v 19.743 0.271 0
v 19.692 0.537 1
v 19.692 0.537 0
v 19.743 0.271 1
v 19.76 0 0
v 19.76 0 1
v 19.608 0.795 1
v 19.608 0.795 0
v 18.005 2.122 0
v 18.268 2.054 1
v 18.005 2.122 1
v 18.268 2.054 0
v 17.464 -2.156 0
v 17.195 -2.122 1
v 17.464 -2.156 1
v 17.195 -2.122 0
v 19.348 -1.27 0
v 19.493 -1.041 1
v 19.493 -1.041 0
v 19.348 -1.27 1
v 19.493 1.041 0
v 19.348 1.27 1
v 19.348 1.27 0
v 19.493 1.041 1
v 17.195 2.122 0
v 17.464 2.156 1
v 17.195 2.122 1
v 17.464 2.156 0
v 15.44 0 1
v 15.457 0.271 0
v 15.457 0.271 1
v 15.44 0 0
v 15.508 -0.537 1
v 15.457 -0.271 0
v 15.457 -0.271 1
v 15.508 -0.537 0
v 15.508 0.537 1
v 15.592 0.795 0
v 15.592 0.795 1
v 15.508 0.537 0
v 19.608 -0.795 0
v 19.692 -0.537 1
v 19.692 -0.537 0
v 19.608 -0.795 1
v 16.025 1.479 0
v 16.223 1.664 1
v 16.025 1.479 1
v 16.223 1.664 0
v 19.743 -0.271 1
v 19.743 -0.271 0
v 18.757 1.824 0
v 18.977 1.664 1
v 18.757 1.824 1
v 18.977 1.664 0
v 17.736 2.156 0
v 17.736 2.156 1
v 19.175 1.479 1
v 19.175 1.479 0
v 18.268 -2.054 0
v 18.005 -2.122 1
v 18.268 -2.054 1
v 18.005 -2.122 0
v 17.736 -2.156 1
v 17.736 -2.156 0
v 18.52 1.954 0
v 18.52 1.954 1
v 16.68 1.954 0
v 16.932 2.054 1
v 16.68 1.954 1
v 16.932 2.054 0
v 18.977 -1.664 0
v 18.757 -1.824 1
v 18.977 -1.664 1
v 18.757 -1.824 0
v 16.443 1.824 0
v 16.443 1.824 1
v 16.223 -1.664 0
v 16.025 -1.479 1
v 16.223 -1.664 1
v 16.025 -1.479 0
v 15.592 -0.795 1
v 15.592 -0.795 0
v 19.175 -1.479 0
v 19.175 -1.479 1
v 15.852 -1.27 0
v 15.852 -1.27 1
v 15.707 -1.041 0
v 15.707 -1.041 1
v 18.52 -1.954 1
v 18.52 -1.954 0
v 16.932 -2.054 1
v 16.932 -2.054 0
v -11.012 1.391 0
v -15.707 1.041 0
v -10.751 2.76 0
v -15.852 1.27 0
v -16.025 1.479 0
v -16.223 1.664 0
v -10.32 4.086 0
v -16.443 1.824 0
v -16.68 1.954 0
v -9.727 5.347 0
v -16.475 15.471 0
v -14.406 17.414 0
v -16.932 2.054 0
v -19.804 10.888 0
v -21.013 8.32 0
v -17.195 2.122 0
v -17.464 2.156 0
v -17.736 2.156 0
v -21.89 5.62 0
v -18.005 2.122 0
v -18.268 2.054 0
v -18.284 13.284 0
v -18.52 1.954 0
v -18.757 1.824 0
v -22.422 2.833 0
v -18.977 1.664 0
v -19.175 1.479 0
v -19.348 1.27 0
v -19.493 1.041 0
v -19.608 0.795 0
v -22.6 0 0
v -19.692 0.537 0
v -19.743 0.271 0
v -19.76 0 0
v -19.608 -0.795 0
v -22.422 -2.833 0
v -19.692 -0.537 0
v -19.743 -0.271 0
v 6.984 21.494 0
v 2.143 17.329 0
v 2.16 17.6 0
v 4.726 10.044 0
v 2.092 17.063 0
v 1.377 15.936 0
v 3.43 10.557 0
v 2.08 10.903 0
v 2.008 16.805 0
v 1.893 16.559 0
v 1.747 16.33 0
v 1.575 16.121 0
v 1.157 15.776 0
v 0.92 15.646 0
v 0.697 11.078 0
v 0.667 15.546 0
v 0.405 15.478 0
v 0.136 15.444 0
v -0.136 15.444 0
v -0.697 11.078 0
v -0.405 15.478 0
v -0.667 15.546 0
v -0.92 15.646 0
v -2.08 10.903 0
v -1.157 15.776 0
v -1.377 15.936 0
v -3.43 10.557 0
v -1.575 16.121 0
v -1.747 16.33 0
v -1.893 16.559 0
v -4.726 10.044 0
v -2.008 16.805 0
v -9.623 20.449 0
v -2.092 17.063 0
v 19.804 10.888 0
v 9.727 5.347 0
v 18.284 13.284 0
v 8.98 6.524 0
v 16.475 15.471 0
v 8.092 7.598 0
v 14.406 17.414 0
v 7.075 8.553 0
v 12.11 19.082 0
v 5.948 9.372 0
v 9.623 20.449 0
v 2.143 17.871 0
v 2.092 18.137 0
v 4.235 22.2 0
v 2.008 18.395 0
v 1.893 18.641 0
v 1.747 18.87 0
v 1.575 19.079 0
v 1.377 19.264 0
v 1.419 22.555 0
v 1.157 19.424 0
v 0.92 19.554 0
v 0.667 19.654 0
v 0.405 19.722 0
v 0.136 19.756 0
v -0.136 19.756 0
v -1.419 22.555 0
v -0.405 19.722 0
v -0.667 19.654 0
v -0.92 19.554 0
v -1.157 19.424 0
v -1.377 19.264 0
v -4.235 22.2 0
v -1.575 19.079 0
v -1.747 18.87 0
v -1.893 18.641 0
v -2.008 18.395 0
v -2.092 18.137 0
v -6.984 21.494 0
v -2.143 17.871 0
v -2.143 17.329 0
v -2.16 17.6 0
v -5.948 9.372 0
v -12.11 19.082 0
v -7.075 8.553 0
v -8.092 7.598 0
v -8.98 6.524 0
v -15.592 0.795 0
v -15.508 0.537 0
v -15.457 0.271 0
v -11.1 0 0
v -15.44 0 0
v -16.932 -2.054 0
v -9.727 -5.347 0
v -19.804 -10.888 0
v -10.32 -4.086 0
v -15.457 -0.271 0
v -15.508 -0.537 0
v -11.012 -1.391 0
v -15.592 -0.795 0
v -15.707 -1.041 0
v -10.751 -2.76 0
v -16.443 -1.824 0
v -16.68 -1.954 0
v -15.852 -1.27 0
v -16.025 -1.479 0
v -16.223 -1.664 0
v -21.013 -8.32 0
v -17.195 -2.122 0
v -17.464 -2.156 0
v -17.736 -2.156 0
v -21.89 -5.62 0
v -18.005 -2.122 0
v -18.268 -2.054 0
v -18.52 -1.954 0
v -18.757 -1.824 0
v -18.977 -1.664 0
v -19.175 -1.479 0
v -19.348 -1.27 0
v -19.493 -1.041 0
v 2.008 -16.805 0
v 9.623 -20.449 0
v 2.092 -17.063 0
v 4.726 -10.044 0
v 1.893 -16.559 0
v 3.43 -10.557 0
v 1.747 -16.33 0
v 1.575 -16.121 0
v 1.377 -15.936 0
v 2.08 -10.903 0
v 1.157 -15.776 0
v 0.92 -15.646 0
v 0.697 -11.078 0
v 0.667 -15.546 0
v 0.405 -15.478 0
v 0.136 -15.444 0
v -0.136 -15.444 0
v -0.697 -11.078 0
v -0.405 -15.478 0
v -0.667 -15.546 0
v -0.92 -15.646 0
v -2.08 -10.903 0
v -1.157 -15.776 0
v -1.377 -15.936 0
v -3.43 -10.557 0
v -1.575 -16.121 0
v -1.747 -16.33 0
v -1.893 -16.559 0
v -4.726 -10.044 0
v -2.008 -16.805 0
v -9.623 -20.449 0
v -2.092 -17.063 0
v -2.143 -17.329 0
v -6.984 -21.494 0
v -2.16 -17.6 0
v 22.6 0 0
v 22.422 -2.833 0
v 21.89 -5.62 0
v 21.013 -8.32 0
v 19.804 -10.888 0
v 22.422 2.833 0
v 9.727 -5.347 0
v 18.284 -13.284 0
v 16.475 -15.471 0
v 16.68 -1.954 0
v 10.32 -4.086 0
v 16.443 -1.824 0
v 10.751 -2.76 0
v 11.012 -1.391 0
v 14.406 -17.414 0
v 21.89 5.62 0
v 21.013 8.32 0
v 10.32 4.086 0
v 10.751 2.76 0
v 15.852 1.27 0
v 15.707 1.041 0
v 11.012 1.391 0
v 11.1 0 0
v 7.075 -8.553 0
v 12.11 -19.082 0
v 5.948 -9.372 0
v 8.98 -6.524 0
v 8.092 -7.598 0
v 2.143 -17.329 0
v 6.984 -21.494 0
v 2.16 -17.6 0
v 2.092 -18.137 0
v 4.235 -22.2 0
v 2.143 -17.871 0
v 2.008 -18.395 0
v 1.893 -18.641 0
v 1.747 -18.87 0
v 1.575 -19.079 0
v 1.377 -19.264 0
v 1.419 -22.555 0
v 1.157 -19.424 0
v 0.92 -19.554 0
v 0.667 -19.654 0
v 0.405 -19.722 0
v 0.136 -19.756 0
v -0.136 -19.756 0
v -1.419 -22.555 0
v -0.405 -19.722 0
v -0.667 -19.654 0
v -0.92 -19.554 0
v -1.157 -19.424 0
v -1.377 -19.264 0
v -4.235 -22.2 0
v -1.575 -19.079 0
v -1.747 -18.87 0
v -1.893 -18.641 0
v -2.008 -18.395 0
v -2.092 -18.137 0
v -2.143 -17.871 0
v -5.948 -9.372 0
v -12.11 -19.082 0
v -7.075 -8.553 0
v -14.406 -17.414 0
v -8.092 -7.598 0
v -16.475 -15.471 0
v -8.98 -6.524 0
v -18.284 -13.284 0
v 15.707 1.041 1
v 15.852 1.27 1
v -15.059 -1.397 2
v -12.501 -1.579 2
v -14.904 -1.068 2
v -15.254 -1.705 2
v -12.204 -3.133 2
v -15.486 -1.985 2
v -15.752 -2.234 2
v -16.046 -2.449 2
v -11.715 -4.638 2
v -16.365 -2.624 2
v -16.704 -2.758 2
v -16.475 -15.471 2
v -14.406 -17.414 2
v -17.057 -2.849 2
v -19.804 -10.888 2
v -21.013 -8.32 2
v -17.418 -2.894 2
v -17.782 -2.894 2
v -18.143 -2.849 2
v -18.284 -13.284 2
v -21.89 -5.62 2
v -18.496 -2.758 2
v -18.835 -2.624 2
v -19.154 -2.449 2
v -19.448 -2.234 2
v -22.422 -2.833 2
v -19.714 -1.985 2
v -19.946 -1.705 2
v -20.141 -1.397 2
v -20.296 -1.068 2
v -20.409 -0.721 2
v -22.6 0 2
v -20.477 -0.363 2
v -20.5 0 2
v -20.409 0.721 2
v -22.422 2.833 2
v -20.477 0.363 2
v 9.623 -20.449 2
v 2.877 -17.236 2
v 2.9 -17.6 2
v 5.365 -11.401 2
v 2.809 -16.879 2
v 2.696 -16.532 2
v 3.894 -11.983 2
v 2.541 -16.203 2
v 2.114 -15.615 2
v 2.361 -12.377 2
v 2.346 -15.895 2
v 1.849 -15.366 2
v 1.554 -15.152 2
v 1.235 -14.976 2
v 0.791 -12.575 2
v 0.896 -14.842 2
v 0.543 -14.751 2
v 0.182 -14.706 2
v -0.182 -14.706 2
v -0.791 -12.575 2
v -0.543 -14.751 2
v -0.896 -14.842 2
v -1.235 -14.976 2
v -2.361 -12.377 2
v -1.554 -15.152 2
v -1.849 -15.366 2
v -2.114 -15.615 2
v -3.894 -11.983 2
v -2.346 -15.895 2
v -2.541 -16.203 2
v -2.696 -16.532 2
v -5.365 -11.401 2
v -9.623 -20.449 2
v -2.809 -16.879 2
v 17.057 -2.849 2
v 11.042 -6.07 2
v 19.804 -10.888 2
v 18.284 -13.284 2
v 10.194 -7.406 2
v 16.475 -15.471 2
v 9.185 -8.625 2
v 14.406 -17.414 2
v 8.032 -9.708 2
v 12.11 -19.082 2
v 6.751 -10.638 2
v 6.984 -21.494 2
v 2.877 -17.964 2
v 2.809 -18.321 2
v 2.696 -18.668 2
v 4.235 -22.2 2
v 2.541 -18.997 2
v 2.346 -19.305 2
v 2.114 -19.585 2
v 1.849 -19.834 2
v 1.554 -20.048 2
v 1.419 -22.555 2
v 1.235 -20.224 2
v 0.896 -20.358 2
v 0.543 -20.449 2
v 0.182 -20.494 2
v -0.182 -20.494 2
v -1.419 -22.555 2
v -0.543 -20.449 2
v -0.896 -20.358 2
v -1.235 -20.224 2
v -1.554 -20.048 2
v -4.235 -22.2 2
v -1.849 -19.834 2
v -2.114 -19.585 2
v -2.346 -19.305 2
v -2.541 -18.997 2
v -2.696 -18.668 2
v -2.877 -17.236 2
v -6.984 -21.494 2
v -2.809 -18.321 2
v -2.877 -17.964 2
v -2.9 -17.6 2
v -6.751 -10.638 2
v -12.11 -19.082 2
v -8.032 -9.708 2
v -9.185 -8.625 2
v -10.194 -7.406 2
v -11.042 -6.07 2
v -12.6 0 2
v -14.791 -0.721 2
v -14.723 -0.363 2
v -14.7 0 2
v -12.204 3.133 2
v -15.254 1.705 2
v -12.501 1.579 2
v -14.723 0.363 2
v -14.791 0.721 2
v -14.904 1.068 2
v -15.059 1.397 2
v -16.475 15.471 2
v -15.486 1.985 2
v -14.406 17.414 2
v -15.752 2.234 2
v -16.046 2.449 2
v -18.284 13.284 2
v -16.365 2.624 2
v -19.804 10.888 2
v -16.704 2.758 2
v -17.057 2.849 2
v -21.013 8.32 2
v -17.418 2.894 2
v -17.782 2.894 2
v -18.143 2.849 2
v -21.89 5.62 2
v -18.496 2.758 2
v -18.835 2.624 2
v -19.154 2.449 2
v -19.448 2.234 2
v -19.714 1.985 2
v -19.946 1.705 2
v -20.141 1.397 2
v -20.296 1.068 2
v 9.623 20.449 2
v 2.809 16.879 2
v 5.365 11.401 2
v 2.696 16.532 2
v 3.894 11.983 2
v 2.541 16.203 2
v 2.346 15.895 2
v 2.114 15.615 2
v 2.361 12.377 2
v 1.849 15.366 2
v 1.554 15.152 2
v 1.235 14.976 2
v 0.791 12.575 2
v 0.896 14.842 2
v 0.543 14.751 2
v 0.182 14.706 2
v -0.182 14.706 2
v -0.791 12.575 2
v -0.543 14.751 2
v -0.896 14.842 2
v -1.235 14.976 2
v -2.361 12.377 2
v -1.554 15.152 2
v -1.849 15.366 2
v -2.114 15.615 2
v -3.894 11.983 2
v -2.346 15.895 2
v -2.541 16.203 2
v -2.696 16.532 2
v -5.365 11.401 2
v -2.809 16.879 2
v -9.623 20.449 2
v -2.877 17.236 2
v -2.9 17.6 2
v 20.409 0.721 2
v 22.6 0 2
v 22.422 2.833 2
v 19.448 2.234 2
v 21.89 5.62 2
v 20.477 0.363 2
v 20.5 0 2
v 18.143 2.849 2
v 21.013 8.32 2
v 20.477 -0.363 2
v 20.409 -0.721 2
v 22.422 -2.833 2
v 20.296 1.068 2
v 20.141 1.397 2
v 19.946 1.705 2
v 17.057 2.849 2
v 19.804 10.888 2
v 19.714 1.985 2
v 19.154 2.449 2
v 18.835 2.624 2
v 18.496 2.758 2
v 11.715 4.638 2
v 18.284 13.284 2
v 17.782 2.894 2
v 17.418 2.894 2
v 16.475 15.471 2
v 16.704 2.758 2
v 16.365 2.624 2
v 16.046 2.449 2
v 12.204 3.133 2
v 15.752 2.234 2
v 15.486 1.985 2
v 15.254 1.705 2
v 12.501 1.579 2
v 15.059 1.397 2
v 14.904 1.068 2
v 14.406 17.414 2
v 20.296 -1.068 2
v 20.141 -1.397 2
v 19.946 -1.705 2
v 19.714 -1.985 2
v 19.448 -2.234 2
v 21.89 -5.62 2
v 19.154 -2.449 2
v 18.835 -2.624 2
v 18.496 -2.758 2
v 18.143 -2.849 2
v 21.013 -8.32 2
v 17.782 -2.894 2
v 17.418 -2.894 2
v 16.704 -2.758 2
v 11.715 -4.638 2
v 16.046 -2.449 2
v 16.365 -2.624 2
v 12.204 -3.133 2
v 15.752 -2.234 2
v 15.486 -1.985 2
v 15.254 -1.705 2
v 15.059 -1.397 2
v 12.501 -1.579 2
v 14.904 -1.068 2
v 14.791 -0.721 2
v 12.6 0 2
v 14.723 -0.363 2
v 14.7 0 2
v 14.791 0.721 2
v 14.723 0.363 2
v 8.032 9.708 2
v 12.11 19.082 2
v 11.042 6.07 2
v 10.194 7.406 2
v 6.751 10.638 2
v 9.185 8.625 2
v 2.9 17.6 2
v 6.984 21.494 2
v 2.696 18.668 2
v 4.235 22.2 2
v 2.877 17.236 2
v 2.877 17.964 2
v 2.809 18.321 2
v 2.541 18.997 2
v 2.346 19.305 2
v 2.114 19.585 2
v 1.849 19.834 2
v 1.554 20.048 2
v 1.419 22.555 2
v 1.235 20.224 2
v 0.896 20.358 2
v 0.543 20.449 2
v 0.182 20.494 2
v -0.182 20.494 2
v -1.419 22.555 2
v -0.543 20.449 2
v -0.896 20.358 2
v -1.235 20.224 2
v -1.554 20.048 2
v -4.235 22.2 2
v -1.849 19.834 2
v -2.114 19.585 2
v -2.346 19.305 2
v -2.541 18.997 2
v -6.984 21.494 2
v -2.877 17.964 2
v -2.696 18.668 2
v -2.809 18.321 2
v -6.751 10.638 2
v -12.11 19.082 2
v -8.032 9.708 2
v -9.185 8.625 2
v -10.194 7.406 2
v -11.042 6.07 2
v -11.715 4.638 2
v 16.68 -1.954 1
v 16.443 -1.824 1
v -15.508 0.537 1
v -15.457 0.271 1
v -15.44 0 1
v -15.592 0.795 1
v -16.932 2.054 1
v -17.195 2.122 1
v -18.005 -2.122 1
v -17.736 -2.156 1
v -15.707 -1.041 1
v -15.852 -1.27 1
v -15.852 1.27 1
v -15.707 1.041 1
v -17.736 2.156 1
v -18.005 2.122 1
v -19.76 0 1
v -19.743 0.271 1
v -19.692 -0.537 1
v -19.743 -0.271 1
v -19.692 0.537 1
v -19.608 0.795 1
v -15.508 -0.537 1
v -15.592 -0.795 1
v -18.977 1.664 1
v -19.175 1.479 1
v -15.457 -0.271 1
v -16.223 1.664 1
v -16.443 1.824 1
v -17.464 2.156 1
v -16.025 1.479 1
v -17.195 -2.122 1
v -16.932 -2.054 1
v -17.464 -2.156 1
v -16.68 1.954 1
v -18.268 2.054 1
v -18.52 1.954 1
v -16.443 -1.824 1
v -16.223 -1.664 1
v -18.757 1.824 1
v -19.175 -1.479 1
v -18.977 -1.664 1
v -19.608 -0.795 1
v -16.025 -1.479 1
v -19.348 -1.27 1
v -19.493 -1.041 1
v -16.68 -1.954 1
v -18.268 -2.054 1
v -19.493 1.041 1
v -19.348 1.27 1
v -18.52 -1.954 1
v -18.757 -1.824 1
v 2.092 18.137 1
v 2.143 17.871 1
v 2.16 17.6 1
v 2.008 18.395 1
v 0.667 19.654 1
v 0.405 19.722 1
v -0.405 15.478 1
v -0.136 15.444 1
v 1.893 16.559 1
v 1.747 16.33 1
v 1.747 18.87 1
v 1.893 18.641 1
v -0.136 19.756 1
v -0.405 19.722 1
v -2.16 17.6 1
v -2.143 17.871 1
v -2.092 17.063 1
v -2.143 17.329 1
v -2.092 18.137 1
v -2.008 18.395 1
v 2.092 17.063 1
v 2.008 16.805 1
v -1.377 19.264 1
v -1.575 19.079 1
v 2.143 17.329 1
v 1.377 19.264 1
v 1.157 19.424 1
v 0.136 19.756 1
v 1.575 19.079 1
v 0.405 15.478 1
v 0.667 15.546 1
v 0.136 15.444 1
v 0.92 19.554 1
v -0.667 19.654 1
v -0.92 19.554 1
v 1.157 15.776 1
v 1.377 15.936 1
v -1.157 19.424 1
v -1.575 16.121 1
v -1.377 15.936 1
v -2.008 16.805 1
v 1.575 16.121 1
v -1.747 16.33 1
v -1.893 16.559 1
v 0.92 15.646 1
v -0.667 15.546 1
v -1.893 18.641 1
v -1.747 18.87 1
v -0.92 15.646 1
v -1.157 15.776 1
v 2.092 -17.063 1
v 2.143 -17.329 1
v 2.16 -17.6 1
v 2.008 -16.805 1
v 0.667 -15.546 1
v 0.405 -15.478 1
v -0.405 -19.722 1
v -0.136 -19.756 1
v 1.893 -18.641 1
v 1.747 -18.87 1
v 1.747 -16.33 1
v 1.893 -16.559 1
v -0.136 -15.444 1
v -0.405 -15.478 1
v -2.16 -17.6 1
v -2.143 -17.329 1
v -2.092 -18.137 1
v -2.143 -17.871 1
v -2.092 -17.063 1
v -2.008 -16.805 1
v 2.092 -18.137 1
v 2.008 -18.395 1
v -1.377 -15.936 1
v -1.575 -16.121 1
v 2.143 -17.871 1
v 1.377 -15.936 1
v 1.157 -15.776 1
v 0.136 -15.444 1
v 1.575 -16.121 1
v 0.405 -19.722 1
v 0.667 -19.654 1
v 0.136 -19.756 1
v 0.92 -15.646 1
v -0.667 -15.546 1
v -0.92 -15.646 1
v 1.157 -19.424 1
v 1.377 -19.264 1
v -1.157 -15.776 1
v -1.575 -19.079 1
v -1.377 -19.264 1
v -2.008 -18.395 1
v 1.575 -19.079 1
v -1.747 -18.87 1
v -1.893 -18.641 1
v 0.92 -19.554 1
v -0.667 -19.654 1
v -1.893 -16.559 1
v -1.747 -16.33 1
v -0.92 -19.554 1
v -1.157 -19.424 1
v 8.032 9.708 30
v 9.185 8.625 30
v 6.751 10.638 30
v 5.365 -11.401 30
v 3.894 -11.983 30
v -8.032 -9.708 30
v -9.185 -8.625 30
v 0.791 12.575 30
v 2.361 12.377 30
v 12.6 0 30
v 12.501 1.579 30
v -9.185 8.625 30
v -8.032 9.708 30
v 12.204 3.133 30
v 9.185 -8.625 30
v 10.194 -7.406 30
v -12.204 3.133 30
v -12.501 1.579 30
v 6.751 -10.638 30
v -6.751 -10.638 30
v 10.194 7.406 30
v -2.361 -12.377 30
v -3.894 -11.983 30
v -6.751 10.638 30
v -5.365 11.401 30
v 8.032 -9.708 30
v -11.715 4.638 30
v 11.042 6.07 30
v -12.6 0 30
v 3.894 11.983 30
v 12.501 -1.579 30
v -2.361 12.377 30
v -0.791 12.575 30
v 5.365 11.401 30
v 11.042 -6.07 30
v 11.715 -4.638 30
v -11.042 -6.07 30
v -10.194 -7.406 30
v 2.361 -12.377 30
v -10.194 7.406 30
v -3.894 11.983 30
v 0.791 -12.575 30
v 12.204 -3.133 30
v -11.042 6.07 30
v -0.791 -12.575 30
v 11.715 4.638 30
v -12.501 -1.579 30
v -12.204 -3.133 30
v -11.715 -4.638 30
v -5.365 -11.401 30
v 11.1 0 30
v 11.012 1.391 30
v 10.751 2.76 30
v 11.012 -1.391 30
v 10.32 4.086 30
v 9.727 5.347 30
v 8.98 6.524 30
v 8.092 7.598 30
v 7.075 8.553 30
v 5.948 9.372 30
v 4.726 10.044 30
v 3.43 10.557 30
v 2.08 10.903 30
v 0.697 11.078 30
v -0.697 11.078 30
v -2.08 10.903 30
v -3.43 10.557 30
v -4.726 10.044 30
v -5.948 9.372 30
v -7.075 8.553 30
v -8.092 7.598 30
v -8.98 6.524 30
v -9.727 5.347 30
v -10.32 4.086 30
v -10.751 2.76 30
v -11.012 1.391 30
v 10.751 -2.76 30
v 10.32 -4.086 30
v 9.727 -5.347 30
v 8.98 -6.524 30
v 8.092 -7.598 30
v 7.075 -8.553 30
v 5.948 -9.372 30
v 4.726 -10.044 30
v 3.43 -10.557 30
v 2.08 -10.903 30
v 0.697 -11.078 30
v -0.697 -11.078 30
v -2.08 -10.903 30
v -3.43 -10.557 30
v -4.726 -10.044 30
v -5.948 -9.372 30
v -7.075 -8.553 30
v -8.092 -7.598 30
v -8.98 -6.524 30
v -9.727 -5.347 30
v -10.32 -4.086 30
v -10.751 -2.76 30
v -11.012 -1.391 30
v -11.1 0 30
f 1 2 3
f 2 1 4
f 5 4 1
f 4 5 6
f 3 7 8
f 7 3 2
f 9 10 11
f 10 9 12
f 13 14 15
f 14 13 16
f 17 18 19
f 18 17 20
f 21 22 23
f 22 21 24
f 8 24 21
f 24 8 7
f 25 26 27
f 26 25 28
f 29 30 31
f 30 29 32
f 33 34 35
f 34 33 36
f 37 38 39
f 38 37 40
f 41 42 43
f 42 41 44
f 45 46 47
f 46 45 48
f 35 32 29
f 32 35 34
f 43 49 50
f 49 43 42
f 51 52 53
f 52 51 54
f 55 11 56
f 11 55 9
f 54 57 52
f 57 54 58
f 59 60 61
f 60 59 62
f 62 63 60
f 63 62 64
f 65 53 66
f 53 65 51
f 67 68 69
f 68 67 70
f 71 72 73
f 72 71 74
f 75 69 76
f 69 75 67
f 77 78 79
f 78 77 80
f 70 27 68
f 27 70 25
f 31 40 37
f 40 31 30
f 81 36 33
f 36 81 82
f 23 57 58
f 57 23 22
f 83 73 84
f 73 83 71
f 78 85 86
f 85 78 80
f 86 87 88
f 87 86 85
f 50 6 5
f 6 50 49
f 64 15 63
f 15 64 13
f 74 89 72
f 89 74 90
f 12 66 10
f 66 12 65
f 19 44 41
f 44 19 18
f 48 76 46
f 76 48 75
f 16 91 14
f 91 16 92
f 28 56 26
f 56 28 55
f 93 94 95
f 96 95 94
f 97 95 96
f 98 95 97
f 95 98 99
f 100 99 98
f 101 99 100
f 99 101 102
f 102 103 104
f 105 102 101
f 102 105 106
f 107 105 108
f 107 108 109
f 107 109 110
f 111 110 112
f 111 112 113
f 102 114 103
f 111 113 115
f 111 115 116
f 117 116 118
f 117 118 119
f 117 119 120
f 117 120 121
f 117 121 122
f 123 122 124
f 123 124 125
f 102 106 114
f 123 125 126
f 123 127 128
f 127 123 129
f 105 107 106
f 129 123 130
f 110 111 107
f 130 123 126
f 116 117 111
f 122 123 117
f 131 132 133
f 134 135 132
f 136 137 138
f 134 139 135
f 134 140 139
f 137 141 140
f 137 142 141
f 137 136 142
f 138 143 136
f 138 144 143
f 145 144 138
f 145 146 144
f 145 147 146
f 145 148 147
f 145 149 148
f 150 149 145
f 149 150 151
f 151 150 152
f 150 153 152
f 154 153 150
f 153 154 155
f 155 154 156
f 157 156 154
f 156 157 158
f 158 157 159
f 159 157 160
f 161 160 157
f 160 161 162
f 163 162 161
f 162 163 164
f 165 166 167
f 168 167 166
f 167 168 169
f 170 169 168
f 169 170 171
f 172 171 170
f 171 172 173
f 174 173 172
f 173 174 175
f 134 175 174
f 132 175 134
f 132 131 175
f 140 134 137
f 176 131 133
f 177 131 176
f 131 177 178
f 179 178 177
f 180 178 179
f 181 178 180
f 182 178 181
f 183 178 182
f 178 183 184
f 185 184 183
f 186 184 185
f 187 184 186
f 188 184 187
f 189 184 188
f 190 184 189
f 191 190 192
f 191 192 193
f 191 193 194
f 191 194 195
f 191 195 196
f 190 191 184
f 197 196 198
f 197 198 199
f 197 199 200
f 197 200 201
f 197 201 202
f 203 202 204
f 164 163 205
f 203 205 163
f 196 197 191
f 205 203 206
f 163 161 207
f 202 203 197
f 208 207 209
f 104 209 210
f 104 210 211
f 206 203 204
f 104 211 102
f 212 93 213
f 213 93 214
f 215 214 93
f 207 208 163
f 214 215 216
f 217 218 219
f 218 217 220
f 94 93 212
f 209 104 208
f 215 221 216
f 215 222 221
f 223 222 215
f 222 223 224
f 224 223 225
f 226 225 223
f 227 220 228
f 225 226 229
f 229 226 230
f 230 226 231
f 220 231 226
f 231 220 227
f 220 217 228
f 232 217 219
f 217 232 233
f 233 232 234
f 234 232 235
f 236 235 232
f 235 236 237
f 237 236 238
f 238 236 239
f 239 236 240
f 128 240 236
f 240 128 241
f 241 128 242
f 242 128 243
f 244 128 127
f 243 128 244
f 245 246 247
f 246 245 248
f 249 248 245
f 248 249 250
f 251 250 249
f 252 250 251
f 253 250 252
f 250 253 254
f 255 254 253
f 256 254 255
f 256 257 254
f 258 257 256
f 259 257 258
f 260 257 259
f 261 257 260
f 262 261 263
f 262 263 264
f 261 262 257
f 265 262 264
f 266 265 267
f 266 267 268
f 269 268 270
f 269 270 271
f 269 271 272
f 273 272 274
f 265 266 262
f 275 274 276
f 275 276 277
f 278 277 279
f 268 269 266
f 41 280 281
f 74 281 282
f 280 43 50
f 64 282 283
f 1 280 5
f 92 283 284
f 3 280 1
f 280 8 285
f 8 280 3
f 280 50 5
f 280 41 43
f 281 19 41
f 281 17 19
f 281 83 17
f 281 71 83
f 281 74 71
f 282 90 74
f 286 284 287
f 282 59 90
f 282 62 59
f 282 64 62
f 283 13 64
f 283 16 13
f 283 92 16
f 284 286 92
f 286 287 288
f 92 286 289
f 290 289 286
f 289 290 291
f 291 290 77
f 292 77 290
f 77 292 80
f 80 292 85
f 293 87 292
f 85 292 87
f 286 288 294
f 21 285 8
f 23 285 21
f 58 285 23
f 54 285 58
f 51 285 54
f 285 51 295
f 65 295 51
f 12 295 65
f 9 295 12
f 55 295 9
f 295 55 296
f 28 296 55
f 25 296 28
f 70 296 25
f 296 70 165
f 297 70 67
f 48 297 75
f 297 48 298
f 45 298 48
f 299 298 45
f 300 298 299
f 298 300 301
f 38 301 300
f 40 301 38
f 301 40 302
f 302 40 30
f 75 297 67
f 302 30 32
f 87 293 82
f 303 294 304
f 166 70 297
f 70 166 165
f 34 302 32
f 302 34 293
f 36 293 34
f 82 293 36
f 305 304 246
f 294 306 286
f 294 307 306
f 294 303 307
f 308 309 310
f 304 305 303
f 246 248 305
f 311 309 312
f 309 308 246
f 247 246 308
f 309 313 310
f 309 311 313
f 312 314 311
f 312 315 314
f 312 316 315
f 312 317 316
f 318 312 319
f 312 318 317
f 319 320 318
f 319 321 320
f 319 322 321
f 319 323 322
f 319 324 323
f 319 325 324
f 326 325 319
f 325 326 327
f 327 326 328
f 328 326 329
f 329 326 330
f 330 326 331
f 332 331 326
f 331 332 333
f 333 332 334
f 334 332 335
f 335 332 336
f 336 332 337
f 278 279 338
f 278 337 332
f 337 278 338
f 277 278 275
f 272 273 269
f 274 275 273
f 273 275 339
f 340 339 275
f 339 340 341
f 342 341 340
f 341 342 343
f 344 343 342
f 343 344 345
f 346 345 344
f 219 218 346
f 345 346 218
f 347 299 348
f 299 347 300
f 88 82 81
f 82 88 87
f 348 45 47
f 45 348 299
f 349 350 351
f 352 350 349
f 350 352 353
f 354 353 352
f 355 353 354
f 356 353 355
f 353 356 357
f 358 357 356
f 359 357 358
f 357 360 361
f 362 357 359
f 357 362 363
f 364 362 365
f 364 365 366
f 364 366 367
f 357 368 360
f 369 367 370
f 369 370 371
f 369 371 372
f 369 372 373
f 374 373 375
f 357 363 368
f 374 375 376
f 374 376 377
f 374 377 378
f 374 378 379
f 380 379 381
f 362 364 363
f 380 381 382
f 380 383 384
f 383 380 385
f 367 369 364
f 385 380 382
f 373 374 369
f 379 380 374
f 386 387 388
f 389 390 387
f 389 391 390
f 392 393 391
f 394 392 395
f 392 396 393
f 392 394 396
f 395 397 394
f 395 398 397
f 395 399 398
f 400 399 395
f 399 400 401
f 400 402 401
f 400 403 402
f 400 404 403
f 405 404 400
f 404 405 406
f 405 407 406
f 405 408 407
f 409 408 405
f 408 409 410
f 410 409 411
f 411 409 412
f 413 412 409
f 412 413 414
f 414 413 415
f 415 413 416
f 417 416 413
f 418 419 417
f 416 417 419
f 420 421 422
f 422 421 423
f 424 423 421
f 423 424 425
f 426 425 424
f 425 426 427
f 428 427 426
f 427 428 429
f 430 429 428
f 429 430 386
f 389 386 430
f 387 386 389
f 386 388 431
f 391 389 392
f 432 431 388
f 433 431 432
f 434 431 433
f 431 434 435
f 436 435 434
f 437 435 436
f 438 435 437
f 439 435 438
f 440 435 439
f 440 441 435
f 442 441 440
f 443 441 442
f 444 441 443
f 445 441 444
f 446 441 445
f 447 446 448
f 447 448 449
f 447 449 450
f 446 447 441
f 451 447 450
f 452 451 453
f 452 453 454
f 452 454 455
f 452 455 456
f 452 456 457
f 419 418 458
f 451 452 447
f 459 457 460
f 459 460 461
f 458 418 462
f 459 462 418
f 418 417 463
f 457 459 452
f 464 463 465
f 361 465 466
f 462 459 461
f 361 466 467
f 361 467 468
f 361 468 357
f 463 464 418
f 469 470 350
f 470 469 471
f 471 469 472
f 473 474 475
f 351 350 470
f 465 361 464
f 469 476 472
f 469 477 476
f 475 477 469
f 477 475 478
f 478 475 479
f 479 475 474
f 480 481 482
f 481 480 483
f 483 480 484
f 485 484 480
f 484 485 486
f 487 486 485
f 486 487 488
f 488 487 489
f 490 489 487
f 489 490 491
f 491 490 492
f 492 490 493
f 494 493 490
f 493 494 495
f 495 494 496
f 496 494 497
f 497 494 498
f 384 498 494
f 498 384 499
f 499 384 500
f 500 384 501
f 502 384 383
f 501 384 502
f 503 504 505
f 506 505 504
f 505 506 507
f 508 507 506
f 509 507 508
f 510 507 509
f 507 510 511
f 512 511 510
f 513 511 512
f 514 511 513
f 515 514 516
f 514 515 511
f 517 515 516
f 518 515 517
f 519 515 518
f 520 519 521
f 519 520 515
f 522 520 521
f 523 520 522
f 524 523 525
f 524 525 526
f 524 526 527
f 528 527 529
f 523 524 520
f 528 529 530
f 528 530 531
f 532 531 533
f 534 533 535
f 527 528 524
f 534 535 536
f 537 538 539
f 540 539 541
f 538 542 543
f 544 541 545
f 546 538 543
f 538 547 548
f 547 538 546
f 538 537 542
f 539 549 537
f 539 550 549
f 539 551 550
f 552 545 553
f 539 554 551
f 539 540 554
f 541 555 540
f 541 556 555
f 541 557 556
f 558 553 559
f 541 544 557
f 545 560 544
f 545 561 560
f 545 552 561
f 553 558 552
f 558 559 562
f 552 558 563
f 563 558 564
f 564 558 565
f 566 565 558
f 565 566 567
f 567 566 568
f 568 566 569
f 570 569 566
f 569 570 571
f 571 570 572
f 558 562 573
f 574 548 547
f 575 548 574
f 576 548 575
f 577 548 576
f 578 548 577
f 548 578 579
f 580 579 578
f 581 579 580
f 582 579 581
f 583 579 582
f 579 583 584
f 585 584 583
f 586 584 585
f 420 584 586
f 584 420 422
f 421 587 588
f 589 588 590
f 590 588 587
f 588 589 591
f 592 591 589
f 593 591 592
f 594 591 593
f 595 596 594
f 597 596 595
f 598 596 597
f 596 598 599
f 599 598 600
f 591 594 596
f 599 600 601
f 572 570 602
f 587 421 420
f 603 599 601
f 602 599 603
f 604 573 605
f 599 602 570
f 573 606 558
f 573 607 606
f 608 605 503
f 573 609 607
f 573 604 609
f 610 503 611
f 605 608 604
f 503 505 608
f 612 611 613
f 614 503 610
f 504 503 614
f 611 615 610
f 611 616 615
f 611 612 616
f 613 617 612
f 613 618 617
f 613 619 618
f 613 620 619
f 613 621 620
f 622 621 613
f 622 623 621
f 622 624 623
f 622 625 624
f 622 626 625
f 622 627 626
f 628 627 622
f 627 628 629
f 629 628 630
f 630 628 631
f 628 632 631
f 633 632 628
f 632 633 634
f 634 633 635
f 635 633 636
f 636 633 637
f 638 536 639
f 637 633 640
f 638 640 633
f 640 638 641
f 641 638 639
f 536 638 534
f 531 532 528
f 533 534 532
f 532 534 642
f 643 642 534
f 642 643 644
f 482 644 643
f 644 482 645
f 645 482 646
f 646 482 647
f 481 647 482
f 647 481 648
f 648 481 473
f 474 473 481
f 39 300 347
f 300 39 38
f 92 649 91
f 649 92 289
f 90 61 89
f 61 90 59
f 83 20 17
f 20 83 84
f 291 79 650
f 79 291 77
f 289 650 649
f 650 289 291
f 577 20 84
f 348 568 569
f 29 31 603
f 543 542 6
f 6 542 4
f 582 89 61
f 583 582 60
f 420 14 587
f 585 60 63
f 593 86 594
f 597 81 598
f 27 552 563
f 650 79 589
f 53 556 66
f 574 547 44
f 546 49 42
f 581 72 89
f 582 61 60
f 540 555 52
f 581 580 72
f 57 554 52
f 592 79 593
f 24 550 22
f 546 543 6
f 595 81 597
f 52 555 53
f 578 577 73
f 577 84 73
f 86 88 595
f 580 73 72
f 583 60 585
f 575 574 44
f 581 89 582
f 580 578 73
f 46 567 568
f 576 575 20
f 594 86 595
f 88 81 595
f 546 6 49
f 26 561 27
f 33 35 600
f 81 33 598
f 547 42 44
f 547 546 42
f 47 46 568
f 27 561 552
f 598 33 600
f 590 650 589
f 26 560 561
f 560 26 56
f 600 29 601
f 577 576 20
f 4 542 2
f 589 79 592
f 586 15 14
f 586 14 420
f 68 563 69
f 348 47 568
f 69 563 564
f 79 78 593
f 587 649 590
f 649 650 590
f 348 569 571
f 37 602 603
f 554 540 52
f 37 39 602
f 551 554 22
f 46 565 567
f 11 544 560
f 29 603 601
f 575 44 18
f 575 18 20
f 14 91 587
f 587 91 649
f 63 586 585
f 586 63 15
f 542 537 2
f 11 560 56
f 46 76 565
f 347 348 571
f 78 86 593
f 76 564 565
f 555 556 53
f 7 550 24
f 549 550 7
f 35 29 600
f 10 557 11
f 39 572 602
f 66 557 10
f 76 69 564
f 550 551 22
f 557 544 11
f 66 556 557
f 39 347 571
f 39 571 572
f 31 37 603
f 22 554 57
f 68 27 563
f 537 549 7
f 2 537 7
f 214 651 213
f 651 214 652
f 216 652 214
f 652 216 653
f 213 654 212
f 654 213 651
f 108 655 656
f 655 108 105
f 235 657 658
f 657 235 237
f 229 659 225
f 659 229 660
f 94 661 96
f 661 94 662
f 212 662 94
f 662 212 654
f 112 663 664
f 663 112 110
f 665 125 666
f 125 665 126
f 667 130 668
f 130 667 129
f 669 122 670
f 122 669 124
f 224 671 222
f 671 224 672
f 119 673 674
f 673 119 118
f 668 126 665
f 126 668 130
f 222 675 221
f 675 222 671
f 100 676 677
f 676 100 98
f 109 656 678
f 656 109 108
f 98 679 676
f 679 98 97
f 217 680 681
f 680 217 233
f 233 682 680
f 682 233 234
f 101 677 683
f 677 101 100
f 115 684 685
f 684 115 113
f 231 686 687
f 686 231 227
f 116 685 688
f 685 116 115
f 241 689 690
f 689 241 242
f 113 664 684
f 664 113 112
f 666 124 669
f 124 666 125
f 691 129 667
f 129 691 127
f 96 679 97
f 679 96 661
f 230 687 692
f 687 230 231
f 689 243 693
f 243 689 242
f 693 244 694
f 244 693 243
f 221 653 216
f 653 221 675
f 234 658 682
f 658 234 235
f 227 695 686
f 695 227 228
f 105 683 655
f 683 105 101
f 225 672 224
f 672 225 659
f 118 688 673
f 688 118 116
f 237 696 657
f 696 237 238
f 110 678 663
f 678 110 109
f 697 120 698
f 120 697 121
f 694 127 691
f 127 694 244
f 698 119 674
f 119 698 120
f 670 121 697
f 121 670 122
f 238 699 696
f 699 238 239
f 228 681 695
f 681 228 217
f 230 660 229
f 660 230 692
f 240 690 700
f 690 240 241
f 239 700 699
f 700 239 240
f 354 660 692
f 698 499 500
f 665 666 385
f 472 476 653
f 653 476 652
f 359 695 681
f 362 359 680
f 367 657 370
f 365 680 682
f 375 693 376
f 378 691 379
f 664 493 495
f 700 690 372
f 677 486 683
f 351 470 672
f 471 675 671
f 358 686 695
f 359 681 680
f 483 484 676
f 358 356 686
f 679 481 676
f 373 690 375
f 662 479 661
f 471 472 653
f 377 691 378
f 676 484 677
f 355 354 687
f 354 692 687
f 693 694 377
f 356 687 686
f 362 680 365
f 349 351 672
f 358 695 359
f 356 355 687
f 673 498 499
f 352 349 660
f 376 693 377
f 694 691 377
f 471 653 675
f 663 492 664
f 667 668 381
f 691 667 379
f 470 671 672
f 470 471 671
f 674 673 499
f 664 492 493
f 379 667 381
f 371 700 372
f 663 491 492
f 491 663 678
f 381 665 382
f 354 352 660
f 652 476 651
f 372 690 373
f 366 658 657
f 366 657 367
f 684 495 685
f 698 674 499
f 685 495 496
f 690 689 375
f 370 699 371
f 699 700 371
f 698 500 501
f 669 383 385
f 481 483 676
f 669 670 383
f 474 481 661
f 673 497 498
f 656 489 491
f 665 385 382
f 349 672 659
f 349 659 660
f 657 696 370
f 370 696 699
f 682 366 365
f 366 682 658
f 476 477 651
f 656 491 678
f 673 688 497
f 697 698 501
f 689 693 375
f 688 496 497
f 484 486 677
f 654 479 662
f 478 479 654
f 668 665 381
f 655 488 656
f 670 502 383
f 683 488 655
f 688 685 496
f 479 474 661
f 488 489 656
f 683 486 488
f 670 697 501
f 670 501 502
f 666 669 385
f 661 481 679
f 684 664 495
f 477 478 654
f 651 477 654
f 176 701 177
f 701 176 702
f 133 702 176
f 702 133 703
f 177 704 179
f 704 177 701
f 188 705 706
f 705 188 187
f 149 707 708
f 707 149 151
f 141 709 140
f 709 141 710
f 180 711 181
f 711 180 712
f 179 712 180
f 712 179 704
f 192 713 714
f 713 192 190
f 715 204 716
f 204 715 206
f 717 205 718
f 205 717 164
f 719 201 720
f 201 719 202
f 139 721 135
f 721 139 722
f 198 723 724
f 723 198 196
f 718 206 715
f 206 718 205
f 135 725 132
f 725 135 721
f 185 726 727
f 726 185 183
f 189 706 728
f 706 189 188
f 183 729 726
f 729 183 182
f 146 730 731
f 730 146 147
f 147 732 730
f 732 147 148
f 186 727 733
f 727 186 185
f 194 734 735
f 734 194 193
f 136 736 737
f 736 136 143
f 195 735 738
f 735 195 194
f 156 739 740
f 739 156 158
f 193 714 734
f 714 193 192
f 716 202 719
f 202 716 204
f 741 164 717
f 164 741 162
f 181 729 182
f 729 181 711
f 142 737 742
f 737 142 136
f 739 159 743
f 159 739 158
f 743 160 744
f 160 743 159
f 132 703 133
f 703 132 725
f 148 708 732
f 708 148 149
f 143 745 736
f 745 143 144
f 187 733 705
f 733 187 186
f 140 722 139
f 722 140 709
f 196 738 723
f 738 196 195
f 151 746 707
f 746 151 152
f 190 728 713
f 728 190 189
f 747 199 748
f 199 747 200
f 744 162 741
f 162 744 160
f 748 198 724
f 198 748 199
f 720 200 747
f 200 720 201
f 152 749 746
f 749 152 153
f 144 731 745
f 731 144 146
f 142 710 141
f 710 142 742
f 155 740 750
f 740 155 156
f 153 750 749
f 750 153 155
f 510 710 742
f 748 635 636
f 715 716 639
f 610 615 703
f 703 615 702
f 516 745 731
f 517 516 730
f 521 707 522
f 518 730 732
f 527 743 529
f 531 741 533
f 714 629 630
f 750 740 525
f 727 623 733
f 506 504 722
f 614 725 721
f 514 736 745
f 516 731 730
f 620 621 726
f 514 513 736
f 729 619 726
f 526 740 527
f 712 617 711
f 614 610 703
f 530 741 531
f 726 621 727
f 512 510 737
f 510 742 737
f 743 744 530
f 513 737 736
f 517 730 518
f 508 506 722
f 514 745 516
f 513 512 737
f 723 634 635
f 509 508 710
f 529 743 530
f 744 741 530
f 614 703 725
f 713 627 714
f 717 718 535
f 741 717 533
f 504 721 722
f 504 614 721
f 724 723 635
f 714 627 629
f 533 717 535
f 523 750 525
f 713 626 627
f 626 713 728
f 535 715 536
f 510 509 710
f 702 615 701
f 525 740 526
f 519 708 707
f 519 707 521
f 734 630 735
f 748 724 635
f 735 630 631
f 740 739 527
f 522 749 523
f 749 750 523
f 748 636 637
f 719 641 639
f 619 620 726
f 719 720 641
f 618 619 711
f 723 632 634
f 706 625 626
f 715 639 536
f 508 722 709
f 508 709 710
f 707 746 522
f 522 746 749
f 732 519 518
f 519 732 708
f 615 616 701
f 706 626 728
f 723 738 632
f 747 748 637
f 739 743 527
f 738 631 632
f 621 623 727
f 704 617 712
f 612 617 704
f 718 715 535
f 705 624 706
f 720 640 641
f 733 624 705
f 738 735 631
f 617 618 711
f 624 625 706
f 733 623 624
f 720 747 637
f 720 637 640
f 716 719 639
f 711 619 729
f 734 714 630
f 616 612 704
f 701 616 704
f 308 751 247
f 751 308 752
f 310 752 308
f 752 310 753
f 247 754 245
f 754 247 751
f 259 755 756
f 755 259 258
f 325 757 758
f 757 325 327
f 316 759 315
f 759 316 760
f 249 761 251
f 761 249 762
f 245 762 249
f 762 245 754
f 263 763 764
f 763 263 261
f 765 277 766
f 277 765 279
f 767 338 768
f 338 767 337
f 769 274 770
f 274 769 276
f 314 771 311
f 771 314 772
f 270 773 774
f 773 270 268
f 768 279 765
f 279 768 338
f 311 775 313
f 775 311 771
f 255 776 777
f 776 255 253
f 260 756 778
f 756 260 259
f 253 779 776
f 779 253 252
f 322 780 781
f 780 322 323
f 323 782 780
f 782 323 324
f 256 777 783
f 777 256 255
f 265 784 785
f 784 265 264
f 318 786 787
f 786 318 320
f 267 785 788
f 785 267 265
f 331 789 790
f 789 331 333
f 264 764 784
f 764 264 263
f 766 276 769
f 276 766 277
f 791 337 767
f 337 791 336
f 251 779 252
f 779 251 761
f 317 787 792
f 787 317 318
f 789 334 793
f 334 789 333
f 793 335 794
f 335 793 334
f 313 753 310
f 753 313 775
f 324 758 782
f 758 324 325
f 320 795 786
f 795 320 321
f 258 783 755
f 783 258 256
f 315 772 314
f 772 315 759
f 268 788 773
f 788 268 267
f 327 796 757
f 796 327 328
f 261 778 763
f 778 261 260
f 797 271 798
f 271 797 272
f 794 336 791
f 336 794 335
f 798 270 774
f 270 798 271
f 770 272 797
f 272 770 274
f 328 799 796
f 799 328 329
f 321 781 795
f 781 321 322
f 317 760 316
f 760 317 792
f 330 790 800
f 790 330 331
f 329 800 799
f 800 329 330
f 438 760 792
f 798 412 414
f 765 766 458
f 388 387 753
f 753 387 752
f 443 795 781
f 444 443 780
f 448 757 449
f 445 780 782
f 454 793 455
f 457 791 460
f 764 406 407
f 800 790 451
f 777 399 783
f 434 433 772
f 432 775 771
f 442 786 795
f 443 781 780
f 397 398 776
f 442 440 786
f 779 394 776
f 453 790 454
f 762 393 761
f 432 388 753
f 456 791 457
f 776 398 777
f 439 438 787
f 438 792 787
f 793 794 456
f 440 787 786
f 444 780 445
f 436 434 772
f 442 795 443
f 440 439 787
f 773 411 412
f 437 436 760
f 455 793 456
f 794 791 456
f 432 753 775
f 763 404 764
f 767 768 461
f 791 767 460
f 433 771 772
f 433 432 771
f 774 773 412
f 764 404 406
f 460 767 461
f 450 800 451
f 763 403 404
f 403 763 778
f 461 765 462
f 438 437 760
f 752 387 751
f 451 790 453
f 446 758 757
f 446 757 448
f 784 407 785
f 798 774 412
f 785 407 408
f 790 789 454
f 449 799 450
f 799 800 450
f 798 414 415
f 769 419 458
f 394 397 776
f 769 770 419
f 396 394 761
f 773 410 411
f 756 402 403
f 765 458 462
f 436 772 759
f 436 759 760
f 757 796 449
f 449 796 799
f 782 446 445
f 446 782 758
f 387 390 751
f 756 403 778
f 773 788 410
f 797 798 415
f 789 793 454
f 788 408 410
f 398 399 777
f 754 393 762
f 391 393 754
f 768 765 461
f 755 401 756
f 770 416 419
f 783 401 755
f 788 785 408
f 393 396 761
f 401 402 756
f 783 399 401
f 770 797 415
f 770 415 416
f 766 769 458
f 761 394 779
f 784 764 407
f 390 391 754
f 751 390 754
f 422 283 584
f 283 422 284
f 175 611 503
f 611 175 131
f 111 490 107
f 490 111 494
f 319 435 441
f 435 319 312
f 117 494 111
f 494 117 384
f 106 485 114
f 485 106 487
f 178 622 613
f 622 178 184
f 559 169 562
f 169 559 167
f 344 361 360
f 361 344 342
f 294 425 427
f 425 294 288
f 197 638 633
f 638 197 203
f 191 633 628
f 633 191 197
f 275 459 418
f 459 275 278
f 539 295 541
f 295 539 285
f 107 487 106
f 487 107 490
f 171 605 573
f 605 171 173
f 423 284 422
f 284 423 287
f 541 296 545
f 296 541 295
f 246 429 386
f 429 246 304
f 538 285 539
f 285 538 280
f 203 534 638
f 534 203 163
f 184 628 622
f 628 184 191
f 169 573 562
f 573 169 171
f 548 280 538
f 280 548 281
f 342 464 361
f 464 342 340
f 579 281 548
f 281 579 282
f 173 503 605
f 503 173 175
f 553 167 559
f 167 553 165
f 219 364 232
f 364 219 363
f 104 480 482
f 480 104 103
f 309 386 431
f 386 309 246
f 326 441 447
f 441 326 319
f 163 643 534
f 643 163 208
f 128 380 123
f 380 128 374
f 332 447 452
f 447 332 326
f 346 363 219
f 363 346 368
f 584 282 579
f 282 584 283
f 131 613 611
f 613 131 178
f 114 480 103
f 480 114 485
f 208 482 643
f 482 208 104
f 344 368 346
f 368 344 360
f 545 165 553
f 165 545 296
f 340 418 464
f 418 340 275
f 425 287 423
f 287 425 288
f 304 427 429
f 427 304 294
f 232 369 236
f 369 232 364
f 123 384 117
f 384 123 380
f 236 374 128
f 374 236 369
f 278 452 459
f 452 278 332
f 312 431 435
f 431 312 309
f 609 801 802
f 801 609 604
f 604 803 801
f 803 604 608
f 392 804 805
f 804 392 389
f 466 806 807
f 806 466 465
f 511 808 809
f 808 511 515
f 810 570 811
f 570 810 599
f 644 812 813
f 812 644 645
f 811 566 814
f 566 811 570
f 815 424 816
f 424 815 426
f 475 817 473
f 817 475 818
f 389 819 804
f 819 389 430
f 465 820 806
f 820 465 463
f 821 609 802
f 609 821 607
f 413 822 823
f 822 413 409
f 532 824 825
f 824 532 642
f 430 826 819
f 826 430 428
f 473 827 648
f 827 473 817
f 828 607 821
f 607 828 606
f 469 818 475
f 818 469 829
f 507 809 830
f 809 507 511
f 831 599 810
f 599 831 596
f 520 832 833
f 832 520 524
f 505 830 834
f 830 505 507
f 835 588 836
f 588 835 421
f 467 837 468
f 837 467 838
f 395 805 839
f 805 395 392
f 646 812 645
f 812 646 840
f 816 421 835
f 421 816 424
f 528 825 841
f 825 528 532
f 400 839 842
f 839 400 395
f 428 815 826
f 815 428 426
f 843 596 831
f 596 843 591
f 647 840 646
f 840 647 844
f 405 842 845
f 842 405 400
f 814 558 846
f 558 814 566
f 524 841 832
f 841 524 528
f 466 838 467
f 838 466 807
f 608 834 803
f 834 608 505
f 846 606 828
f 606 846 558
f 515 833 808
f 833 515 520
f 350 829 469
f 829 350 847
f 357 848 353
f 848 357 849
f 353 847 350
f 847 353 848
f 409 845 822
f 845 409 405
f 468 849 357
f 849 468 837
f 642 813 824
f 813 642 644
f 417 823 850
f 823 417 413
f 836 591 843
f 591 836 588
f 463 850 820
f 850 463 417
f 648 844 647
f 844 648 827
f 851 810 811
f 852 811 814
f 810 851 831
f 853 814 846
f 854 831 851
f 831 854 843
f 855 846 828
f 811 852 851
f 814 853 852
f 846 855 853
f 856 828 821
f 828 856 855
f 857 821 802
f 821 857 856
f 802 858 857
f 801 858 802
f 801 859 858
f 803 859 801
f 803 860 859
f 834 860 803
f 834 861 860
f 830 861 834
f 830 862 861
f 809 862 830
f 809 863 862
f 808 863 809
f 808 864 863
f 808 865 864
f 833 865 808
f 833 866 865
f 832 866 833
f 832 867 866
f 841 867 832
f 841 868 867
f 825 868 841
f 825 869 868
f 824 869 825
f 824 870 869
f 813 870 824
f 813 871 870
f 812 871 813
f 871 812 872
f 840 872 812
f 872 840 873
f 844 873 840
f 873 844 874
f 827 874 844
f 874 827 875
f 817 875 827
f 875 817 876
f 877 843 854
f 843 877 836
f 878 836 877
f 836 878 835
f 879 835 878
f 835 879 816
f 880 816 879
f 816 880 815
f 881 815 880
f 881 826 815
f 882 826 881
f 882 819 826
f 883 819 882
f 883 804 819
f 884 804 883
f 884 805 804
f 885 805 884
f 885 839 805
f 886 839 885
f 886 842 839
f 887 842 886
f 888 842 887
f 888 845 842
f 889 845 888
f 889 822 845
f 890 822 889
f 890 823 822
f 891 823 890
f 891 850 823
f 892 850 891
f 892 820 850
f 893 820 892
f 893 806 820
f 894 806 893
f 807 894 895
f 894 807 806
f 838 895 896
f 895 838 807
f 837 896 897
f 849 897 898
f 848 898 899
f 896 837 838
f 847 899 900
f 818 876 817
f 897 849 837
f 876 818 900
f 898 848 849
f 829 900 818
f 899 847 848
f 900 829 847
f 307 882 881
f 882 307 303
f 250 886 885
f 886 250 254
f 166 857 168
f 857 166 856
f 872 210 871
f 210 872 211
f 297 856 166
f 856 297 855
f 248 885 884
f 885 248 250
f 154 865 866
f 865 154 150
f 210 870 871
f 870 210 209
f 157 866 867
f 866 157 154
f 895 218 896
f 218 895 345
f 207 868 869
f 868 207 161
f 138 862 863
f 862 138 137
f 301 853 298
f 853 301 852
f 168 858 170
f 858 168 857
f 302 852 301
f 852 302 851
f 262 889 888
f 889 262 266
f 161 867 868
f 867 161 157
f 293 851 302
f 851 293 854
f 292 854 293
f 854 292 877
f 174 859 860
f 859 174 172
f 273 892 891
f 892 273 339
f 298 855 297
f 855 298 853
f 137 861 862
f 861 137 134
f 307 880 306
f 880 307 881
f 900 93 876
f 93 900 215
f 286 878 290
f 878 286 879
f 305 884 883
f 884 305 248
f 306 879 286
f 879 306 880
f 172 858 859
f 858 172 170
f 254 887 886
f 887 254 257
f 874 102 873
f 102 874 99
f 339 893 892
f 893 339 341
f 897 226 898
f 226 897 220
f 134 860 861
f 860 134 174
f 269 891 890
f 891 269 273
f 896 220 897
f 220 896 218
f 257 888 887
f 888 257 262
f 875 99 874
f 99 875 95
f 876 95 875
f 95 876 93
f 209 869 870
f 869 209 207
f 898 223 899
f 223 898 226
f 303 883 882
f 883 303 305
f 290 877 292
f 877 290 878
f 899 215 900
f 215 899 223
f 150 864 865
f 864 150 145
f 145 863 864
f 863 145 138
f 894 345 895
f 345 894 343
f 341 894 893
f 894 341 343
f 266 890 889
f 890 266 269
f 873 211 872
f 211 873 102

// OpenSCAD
// Flangia per tubo
// Author: Alessandro Paganelli (alessandro.paganelli@gmail.com)

// Measures: in mm

// Constants
$fn = 50;
CYLINDER_H = 30;

// Radius + 1% tolerance
CYLINDER_INNER_R = 11.1;
CYLINDER_THICKNESS = 1.5;
FLANGE_H = 2;
FLANGE_THICKNESS = 10;

// Screws: M4 + 8% tolerance
SCREW_RADIUS = 2.16;
SCREW_HEAD_RADIUS = 2.9;
SCREW_H = FLANGE_H;

// Actual script

cylinder_external_r = CYLINDER_INNER_R + CYLINDER_THICKNESS;
screw_distance = cylinder_external_r + FLANGE_THICKNESS / 2;

// Modules
module screw_hole(screw_radius, head_radius, depth)
{
    union()
    {
        // hole
        cylinder(h = depth, r = screw_radius);
        // screw head
        translate([0, 0, depth / 2])
        cylinder(h = depth / 2, r1 = screw_radius, r2 = head_radius);
    }
}

difference()
{
    union()
    {
        cylinder(h = CYLINDER_H, r = cylinder_external_r);
        difference()
        {
            // Flange with screw holes
            cylinder(h = FLANGE_H, r = cylinder_external_r + FLANGE_THICKNESS);
            
            translate([screw_distance, 0, 0])
            screw_hole(SCREW_RADIUS, SCREW_HEAD_RADIUS, FLANGE_H);
            
            translate([-screw_distance, 0, 0])
            screw_hole(SCREW_RADIUS, SCREW_HEAD_RADIUS, FLANGE_H);
            
            translate([0, screw_distance, 0])
            screw_hole(SCREW_RADIUS, SCREW_HEAD_RADIUS, FLANGE_H);
            
            translate([0, -screw_distance, 0])
            screw_hole(SCREW_RADIUS, SCREW_HEAD_RADIUS, FLANGE_H);
        }
    }
    cylinder(h = CYLINDER_H, r = CYLINDER_INNER_R);
}
